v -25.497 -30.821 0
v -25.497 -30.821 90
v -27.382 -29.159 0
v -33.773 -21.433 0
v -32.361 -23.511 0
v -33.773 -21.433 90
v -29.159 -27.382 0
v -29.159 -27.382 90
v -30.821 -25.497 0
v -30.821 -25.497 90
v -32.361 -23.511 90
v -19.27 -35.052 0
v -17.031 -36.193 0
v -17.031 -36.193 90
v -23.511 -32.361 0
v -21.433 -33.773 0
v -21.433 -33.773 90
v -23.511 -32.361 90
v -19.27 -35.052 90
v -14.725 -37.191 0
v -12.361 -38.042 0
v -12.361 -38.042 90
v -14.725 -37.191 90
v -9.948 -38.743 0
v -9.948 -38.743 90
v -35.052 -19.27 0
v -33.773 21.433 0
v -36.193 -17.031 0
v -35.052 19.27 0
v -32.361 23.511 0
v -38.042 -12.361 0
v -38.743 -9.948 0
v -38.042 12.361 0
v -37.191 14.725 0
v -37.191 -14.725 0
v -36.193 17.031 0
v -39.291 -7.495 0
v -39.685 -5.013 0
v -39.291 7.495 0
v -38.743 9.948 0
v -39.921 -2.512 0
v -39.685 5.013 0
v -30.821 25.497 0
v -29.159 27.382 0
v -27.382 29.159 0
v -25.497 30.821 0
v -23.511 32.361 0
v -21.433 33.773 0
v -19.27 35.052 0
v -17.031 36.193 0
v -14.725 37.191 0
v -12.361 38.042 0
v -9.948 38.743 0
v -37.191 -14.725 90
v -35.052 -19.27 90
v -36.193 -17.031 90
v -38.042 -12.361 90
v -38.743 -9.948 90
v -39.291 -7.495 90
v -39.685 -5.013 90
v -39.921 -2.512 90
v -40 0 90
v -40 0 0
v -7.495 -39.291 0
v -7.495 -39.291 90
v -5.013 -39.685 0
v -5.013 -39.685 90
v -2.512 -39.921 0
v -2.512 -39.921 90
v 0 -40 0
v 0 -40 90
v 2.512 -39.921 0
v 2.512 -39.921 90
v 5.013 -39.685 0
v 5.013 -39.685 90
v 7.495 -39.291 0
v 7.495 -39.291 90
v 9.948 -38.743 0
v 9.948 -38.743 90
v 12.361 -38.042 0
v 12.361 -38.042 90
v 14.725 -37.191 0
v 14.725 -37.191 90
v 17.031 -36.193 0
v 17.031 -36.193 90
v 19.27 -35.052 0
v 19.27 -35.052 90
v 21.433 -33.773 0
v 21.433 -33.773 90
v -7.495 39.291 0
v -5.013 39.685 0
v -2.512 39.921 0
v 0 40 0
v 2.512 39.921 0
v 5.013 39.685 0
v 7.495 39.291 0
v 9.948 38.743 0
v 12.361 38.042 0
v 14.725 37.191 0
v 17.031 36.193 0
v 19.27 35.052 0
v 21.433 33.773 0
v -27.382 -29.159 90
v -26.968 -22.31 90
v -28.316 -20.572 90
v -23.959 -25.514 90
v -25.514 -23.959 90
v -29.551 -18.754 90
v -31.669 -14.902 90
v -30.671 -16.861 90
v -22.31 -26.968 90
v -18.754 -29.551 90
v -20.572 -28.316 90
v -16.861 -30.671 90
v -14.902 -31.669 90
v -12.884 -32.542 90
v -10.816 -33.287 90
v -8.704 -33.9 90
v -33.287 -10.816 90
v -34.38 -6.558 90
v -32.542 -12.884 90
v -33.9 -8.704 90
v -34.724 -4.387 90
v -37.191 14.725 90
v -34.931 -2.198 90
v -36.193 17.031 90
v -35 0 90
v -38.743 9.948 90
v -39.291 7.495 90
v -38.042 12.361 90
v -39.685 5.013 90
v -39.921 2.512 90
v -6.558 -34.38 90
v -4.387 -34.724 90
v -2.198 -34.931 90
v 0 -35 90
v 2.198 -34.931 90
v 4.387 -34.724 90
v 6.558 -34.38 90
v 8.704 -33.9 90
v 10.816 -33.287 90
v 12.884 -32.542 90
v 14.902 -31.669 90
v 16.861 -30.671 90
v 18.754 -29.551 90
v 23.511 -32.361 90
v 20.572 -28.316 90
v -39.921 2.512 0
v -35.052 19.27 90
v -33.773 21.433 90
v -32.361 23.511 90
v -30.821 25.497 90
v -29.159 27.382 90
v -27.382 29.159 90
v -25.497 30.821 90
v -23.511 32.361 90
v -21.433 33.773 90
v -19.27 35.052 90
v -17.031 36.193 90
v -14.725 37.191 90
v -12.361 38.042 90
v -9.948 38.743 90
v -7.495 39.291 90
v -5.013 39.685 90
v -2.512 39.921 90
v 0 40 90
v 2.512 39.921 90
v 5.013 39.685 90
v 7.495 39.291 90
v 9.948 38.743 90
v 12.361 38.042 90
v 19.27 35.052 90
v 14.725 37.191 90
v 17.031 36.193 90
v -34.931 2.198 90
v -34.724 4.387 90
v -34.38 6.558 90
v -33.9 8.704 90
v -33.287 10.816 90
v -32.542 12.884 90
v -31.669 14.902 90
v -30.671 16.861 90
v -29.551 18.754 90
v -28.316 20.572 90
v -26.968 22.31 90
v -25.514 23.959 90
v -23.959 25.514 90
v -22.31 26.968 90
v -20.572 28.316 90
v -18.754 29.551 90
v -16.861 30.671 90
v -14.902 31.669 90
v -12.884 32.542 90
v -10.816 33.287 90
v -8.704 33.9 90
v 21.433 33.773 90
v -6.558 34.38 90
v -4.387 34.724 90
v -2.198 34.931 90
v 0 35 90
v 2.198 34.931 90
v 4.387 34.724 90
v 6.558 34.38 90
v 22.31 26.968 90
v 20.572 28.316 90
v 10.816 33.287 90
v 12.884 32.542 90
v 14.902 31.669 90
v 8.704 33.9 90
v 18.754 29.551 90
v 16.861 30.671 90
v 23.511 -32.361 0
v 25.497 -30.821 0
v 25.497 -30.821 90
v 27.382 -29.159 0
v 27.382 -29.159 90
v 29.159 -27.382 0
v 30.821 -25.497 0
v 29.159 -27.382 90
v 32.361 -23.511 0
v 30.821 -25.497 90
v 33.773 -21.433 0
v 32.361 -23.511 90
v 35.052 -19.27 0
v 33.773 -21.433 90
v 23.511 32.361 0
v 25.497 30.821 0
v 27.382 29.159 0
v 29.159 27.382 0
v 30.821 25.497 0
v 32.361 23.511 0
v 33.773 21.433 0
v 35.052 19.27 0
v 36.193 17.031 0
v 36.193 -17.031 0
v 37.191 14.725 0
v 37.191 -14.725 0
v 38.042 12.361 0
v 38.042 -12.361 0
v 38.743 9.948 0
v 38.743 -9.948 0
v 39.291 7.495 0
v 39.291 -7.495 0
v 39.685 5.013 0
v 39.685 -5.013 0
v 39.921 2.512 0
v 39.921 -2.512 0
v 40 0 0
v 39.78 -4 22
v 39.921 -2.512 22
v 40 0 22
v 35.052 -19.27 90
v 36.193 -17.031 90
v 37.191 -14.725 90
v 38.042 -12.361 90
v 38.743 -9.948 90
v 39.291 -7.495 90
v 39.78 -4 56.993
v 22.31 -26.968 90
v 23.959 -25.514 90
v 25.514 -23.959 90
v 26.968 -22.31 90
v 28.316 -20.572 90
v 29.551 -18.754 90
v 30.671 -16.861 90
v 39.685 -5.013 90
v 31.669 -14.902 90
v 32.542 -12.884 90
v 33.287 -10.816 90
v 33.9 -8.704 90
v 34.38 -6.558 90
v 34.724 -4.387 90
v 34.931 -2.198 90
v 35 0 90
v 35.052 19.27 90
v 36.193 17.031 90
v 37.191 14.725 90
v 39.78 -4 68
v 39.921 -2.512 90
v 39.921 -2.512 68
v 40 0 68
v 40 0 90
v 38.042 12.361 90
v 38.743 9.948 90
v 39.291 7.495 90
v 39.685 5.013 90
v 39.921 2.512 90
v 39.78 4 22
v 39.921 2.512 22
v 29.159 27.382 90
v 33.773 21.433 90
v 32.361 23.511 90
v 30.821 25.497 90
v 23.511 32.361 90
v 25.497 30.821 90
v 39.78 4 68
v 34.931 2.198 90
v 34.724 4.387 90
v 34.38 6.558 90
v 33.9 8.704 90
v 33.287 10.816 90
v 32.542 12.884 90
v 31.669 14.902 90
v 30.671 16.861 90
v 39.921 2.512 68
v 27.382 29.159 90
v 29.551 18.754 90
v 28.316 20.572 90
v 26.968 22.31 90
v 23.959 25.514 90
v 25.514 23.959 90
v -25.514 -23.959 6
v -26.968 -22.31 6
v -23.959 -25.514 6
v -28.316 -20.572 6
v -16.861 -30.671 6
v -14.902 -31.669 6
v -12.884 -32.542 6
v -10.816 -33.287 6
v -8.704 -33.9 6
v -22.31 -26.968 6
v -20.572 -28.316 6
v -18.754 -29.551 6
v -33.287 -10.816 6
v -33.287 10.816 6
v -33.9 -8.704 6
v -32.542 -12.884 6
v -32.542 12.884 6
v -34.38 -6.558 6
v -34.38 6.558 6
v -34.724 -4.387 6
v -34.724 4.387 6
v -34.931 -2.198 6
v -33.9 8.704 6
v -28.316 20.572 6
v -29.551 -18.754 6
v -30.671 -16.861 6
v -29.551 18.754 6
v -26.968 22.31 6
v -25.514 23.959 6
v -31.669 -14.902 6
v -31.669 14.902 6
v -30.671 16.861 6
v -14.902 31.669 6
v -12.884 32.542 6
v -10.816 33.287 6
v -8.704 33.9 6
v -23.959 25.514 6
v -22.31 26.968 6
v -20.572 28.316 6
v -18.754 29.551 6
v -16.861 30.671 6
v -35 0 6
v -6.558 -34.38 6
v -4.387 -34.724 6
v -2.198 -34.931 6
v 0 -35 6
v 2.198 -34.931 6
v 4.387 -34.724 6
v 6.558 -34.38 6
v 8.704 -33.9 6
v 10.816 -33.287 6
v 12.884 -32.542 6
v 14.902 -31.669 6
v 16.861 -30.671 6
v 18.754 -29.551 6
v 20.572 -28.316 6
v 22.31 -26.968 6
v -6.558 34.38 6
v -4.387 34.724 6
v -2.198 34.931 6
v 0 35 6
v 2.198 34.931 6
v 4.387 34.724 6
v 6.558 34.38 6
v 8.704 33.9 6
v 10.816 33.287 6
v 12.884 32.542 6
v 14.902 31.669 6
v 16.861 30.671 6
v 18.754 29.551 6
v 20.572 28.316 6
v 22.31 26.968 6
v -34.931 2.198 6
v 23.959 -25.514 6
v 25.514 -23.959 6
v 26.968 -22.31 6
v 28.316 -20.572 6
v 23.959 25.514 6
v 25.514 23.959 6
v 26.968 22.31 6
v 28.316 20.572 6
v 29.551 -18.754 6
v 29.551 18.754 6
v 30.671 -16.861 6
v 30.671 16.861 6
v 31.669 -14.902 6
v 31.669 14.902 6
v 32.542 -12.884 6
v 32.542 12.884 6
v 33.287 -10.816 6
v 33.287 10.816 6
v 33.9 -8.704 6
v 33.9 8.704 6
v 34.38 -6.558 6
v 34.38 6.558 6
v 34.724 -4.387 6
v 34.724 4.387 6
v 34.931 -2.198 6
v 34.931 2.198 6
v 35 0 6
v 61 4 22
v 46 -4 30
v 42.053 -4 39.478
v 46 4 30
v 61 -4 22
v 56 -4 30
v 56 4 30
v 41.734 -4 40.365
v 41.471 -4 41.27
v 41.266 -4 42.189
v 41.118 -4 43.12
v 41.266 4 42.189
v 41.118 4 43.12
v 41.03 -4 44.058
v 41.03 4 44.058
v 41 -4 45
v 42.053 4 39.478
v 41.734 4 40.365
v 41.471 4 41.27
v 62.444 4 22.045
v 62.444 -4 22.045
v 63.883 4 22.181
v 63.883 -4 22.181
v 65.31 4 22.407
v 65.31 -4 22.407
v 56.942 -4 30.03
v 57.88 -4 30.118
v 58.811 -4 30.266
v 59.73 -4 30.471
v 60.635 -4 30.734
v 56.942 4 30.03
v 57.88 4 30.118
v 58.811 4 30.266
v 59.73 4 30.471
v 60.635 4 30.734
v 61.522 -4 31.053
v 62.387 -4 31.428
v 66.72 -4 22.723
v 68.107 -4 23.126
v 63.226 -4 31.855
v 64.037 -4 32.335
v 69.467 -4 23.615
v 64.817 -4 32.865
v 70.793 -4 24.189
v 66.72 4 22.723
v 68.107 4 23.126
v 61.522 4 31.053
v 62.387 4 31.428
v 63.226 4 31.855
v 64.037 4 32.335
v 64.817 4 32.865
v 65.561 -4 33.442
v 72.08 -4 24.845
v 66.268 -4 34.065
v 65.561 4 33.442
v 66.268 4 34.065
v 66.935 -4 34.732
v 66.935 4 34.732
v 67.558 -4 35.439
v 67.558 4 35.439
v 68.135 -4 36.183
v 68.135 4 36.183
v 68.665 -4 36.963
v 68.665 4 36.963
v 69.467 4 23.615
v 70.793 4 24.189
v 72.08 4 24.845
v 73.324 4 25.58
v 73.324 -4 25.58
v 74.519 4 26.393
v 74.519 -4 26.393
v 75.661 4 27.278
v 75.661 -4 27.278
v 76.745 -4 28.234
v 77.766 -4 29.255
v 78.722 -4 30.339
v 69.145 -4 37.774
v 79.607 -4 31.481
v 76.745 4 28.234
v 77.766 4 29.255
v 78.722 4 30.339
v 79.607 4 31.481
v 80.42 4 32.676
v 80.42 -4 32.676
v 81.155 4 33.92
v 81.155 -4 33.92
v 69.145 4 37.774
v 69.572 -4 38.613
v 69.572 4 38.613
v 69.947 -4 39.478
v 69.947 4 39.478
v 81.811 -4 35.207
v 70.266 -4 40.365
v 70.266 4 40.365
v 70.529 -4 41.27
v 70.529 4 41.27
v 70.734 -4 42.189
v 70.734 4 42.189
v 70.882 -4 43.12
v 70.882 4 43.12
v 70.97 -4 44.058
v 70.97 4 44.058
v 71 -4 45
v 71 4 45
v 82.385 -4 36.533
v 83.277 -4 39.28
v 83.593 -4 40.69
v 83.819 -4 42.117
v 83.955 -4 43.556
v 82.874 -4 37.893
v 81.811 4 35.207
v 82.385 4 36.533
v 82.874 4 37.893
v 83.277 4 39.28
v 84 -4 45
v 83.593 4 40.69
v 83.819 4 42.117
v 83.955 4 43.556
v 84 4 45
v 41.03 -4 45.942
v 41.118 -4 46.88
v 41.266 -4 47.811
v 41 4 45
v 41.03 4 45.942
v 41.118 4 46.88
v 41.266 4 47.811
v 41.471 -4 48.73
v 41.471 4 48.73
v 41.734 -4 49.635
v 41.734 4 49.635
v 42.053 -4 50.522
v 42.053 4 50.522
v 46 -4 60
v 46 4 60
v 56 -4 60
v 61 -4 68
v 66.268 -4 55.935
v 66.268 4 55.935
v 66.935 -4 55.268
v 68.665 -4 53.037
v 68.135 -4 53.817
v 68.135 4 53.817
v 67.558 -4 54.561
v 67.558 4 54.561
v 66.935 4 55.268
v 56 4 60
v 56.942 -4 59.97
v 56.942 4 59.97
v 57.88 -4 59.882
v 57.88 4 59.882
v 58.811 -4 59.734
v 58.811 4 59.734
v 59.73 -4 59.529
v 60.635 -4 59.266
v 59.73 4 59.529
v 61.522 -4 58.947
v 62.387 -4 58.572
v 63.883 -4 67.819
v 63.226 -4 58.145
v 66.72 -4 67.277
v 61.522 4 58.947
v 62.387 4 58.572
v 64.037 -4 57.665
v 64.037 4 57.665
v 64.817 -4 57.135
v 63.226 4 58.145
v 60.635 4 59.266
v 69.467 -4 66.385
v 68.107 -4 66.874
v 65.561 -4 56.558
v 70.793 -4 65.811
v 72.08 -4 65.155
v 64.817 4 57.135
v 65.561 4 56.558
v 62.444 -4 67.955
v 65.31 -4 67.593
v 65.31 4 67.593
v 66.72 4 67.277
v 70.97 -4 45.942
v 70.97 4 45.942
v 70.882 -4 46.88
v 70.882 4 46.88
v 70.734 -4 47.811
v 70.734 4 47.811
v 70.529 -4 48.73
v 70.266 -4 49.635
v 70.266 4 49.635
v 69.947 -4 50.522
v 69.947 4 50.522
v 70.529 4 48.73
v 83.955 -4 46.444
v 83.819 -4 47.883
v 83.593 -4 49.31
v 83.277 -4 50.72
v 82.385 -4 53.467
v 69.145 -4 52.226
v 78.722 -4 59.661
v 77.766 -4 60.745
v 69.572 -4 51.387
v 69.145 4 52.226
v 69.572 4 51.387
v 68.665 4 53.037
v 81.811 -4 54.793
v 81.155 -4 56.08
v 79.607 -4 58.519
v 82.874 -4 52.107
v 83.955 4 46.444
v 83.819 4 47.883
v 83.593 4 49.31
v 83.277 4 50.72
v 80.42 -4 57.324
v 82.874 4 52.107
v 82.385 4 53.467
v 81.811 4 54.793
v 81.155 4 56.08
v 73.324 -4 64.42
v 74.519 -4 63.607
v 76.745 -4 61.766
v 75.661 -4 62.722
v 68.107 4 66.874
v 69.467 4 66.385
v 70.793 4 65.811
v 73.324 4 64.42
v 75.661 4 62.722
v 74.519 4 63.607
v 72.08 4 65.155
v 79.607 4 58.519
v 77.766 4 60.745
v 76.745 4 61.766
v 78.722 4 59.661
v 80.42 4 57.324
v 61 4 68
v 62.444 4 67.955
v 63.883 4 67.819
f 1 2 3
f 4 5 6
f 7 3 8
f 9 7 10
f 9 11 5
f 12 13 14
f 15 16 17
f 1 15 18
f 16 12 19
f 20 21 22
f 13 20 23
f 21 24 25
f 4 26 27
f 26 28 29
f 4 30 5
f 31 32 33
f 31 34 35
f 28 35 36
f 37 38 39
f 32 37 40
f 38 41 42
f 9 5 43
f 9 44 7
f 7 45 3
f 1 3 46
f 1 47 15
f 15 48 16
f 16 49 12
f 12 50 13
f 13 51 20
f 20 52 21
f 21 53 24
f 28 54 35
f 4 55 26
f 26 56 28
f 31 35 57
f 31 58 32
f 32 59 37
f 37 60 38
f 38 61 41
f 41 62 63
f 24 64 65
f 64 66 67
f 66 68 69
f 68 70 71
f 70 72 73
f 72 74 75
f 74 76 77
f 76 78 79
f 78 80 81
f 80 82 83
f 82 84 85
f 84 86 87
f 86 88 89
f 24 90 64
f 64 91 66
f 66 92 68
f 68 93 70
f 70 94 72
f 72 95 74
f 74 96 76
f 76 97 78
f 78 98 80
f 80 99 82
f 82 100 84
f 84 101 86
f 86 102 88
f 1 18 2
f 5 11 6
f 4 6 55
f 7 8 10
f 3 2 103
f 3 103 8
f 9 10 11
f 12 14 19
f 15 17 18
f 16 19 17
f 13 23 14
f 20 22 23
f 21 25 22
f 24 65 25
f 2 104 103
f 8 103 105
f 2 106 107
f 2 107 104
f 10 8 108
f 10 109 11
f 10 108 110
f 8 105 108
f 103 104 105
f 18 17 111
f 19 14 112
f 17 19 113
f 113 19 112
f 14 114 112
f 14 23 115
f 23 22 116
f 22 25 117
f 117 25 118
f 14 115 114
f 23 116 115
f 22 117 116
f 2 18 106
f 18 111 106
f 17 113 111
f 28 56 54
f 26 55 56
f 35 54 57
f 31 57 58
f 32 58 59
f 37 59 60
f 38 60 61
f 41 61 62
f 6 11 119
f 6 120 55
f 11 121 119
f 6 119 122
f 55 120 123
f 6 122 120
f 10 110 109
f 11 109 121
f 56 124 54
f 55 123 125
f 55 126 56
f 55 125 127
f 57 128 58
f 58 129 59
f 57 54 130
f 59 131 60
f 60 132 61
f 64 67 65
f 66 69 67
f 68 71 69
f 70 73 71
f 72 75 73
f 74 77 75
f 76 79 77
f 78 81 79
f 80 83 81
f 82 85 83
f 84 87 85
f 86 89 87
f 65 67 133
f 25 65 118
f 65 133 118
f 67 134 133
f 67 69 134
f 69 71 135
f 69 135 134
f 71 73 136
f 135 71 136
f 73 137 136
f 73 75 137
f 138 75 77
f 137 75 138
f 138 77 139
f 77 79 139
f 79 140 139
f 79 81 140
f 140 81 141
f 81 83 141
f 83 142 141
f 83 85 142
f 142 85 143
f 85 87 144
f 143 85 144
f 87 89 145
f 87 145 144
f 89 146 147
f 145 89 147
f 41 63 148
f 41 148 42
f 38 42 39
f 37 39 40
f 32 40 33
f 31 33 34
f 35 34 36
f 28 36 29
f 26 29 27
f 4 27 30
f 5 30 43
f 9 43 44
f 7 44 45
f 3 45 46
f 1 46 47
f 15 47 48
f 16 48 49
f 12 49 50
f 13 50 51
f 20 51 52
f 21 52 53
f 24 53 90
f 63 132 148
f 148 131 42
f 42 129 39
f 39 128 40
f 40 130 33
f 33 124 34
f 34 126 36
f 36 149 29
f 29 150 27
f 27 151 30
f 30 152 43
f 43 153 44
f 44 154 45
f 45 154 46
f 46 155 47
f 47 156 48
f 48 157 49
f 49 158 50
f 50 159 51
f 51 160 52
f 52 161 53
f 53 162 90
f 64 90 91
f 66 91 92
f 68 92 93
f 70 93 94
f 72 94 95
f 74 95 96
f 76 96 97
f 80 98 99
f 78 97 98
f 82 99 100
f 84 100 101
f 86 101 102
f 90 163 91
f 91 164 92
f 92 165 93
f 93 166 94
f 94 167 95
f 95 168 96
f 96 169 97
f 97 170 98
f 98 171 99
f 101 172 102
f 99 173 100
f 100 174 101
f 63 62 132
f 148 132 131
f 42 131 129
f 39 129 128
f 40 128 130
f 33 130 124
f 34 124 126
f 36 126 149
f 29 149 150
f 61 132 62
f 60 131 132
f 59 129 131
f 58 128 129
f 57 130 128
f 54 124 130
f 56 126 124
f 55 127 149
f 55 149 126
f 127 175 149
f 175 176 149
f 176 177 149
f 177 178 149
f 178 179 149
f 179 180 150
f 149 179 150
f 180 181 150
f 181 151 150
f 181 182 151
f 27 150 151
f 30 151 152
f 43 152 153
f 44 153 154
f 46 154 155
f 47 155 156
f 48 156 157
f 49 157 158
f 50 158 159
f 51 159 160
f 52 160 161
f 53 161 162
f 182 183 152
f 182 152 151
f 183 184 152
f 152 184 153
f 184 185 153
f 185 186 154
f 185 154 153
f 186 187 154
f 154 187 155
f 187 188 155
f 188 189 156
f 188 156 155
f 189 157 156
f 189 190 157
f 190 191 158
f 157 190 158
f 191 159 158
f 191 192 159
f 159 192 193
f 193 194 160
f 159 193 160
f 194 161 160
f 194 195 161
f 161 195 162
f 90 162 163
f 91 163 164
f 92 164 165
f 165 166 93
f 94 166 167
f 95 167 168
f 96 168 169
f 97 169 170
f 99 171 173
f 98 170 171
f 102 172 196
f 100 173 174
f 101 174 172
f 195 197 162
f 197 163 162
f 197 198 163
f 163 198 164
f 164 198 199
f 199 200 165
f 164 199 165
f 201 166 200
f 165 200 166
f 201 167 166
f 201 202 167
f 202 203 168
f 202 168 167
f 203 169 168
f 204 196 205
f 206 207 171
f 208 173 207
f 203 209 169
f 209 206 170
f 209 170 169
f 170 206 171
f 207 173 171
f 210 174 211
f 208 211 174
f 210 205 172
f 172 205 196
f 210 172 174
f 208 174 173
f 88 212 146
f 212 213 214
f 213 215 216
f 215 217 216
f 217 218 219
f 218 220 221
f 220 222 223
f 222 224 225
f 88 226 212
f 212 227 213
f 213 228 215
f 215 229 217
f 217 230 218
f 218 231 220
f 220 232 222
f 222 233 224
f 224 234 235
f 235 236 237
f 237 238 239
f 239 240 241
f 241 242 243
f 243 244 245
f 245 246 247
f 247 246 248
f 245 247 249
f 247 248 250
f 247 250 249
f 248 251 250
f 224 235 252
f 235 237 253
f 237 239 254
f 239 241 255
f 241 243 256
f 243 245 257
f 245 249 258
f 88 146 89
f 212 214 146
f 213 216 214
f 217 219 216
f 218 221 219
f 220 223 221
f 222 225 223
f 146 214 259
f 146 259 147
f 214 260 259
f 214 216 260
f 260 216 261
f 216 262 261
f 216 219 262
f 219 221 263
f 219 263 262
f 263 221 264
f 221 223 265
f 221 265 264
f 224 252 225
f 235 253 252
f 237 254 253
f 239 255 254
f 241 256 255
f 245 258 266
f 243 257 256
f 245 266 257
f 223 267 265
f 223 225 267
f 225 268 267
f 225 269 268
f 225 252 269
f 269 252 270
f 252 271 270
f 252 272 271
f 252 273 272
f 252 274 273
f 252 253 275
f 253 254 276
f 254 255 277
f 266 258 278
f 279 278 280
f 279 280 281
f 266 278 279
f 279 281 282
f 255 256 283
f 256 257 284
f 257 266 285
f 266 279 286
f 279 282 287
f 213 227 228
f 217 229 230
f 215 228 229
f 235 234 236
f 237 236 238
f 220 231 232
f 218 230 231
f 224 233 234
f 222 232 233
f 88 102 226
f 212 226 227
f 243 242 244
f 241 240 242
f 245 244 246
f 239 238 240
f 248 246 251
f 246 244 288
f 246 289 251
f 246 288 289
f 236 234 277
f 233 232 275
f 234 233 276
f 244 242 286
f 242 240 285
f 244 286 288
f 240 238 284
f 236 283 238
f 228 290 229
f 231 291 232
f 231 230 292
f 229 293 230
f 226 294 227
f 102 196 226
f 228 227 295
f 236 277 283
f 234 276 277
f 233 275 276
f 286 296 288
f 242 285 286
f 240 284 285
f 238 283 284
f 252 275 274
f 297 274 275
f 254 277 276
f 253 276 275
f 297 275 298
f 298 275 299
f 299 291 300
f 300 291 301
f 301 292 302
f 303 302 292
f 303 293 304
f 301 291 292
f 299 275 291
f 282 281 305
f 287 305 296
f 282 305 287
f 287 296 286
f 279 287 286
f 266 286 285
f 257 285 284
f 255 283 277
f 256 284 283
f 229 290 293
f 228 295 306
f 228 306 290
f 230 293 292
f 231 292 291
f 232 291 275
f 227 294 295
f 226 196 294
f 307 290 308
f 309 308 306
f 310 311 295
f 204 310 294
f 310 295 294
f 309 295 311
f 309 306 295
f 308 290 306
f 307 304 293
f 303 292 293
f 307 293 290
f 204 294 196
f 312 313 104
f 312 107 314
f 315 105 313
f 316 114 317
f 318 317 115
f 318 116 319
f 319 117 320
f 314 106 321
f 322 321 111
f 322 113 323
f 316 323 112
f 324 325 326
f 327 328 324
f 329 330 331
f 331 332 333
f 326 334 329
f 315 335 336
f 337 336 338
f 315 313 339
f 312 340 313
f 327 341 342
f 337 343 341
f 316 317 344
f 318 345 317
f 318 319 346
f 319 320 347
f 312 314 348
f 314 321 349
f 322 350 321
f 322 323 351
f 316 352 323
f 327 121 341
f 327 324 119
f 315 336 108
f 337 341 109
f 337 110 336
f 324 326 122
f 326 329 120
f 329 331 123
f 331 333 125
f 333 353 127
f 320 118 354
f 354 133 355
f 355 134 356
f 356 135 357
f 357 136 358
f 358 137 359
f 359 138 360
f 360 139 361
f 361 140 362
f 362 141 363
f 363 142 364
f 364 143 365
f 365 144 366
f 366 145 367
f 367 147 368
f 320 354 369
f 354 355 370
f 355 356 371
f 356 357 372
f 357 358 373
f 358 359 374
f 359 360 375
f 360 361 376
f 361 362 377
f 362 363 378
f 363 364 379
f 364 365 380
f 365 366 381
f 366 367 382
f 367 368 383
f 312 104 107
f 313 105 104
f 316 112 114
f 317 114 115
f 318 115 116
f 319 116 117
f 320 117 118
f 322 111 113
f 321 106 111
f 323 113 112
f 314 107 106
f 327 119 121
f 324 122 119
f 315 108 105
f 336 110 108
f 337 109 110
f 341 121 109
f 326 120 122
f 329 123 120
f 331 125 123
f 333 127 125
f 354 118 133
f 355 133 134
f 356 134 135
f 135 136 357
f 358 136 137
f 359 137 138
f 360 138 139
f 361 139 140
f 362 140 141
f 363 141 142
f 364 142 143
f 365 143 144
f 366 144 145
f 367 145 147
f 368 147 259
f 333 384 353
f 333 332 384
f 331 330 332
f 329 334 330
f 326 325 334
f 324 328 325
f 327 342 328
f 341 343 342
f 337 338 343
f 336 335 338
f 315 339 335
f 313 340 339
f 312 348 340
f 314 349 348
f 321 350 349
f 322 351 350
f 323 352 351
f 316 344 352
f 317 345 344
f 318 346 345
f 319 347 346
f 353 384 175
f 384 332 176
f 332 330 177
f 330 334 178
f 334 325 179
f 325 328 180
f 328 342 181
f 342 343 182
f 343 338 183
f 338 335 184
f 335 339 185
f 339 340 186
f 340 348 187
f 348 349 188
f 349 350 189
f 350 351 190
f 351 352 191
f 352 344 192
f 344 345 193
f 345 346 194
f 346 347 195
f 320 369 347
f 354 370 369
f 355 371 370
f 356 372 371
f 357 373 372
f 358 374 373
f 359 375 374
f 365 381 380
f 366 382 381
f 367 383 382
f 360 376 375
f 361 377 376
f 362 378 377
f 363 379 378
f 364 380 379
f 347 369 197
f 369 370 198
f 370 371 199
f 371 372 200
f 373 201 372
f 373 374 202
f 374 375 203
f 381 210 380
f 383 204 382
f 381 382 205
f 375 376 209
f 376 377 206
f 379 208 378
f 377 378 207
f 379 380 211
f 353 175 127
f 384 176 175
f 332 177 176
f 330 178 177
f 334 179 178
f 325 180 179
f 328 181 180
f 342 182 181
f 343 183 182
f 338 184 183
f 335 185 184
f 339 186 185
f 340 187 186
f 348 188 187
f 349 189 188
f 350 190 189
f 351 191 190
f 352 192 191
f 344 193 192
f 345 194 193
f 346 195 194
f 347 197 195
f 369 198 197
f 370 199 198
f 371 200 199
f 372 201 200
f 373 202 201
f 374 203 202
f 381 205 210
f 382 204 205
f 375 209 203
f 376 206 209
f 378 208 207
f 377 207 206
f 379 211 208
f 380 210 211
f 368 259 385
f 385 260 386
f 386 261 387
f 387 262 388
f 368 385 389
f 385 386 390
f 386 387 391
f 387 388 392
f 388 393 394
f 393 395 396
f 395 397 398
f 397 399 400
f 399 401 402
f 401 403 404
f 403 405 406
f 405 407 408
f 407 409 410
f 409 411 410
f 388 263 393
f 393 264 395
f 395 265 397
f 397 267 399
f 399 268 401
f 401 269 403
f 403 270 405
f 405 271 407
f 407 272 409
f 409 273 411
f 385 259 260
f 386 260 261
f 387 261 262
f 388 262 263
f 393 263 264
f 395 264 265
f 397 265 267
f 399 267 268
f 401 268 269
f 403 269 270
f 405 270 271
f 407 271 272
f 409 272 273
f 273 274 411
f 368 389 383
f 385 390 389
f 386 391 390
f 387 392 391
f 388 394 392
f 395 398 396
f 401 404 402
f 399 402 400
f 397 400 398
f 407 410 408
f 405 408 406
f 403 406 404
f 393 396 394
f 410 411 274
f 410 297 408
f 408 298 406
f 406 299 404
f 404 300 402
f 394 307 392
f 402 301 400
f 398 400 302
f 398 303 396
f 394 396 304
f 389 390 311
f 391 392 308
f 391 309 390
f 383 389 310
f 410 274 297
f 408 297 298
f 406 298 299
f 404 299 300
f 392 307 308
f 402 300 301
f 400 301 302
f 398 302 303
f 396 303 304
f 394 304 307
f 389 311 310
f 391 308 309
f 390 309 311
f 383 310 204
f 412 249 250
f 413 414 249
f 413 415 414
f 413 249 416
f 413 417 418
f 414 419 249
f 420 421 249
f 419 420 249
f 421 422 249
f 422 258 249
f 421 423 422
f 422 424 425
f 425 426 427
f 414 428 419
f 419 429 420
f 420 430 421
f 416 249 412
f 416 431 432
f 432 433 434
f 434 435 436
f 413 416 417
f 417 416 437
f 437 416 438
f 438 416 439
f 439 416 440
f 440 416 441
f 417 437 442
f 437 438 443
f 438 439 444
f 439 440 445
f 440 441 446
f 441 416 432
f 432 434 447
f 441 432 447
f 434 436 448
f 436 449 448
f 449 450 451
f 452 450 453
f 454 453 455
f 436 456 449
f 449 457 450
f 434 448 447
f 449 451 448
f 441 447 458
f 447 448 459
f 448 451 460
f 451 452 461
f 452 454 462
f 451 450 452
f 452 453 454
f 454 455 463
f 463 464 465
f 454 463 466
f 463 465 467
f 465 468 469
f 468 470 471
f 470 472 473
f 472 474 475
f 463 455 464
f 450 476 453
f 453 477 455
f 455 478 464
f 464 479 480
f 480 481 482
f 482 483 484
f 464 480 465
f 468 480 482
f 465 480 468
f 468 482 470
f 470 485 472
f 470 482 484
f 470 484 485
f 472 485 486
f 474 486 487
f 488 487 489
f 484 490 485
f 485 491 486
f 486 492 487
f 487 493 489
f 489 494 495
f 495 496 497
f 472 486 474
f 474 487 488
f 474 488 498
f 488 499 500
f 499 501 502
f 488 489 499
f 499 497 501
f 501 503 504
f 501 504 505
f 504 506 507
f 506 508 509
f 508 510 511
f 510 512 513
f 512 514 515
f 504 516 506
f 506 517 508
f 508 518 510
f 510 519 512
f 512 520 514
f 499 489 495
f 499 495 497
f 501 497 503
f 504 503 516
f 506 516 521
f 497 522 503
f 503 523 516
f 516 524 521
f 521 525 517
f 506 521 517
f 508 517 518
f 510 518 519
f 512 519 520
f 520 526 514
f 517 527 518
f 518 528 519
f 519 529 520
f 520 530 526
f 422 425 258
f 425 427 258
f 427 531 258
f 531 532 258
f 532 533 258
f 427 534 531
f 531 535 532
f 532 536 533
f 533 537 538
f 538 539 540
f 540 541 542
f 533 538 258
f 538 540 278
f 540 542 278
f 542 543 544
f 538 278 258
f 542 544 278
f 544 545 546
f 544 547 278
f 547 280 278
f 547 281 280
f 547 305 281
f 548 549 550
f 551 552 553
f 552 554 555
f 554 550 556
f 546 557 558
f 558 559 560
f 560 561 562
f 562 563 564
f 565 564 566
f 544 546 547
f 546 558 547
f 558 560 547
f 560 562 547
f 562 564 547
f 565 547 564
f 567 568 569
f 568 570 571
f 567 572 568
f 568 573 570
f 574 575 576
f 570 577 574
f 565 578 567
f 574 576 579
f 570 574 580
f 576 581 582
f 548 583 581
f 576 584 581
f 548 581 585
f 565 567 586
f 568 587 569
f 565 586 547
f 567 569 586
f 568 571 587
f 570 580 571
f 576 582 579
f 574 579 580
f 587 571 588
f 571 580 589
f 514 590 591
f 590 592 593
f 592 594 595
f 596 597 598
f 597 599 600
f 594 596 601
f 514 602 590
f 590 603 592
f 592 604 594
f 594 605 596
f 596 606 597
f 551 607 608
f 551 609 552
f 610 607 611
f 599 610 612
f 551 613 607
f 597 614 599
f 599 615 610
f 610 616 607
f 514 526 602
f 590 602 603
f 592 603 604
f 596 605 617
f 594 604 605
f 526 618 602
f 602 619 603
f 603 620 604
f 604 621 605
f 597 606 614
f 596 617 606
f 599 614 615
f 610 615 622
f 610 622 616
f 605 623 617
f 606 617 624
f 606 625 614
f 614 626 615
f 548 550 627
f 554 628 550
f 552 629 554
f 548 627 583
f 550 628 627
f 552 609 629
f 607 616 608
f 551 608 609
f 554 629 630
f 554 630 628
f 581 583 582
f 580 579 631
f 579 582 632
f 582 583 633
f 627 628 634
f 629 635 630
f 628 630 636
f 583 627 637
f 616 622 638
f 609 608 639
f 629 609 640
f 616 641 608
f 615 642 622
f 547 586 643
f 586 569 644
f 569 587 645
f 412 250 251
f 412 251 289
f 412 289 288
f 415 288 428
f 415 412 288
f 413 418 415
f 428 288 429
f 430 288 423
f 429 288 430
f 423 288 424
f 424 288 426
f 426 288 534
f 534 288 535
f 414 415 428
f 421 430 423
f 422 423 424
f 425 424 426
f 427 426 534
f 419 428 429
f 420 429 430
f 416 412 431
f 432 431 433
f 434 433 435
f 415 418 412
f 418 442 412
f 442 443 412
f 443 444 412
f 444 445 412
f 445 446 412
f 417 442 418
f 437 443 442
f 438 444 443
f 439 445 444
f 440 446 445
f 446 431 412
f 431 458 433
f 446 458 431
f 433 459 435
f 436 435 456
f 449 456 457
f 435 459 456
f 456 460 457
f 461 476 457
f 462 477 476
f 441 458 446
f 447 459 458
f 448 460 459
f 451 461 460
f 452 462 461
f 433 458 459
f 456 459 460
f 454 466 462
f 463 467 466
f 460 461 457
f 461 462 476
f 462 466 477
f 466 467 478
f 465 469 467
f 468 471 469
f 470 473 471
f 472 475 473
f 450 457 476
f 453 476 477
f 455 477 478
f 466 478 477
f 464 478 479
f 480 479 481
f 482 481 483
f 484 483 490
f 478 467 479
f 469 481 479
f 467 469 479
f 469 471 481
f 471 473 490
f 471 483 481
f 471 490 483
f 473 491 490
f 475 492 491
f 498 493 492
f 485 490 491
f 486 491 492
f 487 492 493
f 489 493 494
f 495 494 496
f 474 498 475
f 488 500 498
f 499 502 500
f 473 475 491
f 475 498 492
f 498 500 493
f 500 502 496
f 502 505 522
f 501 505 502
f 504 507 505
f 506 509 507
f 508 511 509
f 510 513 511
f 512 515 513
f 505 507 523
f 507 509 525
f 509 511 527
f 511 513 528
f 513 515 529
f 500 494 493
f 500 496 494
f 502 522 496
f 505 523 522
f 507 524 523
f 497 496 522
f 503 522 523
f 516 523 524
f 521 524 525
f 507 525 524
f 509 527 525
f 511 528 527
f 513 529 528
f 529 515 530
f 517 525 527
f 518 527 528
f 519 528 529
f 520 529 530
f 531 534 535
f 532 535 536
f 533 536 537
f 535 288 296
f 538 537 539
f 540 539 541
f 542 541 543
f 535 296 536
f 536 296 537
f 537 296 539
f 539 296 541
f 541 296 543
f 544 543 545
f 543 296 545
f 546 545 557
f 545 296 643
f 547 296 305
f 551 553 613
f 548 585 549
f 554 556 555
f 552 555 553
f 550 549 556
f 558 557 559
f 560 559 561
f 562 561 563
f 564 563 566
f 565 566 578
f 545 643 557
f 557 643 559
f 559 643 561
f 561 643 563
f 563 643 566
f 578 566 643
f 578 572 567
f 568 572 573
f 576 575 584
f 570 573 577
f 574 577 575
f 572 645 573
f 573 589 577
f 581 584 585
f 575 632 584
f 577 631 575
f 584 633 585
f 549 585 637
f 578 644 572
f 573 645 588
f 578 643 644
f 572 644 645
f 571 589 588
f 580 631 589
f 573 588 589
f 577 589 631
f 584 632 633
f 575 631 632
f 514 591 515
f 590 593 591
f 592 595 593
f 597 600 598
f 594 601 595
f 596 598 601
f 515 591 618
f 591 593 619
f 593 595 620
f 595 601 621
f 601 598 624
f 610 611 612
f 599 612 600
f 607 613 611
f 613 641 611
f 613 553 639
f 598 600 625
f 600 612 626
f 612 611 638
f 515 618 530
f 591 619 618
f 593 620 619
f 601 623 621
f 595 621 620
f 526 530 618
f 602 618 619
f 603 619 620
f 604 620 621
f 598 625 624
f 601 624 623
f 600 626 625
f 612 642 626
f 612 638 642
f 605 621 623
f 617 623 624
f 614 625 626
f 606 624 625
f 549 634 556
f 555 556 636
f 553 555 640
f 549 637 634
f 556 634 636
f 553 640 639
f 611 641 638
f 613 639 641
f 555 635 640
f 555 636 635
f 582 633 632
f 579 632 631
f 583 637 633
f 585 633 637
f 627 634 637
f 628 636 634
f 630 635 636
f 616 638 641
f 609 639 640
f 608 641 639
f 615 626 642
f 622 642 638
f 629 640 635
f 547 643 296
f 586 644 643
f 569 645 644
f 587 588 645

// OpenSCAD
// マグカップ本体と取手

$fn = 100;

// 本体パラメータ
outer_radius = 40;      // 外径80mm
inner_radius = 35;      // 内径70mm
mug_height = 90;
bottom_thickness = 6;

// 取手パラメータ
handle_inner_height = 30;
handle_inner_width = 25;
handle_thickness = 8;      // 取手の太さ(押し出し断面の直径)
handle_center_z = mug_height / 2;

module mug_body() {
    difference() {
        cylinder(h = mug_height, r = outer_radius);
        translate([0, 0, bottom_thickness])
            cylinder(h = mug_height, r = inner_radius);
    }
}

// D字型取手
// 外側が半円、本体側が直線のD字形状の断面を、上下に扫掠(スイープ)して立体を作る
module handle() {
    // D字の内側空間サイズ
    inner_w = handle_inner_width;   // X方向の内側幅(本体からの張り出し量)
    inner_h = handle_inner_height;  // Z方向の内側高さ

    // 全体の外形サイズ(内側 + 太さ分)
    outer_w = inner_w + handle_thickness;
    outer_h = inner_h + handle_thickness * 2;

    // 本体外周に接続するX位置
    x_base = outer_radius - 1; // 少しめり込ませて確実に union

    translate([x_base, 0, handle_center_z]) {
        rotate([90, 0, 0]) {
            linear_extrude(height = handle_thickness, center = true) {
                difference() {
                    // 外側のD字形状(半円 + 直線側)
                    d_shape(outer_w, outer_h);
                    // 内側のD字形状をくり抜く(内側空間)
                    d_shape_inner(inner_w, inner_h, handle_thickness);
                }
            }
        }
    }
}

// D字形状:左側が直線(本体側)、右側が半円
module d_shape(w, h) {
    r = h / 2;
    union() {
        // 直線部分(左側の四角)
        translate([-1, -h/2])
            square([r + 1, h]);
        // 半円部分(右側)
        translate([r, 0])
            circle(r = r);
    }
}

// 内側(くり抜き用)のD字形状。thicknessの分だけ小さくする
module d_shape_inner(w, h, thickness) {
    r = h / 2;
    union() {
        translate([-1, -h/2])
            square([r + 1, h]);
        translate([r, 0])
            circle(r = r);
    }
}

// 取手全体をより正確に:内側空間を確保しつつ外形はD字
module handle_solid() {
    inner_w = handle_inner_width;
    inner_h = handle_inner_height;
    t = handle_thickness;

    outer_h = inner_h + 2 * t;
    outer_r = outer_h / 2;

    x_base = outer_radius - 2; // 本体にめり込ませる

    translate([x_base, 0, handle_center_z]) {
        rotate([90, 0, 0]) {
            linear_extrude(height = t, center = true) {
                difference() {
                    // 外形:左が直線、右が半円のD字
                    hull() {
                        translate([0, -outer_r])
                            square([1, outer_h]);
                        translate([outer_r, 0])
                            circle(r = outer_r);
                    }
                    // 内側の穴:同じくD字型にくり抜き、指が入る空間を作る
                    translate([t, 0]) {
                        inner_r = inner_h / 2;
                        hull() {
                            translate([0, -inner_r])
                                square([1, inner_h]);
                            translate([inner_w - inner_r, 0])
                                circle(r = inner_r);
                        }
                    }
                }
            }
        }
    }
}

module mug_with_handle() {
    union() {
        mug_body();
        handle_solid();
    }
}

mug_with_handle();
